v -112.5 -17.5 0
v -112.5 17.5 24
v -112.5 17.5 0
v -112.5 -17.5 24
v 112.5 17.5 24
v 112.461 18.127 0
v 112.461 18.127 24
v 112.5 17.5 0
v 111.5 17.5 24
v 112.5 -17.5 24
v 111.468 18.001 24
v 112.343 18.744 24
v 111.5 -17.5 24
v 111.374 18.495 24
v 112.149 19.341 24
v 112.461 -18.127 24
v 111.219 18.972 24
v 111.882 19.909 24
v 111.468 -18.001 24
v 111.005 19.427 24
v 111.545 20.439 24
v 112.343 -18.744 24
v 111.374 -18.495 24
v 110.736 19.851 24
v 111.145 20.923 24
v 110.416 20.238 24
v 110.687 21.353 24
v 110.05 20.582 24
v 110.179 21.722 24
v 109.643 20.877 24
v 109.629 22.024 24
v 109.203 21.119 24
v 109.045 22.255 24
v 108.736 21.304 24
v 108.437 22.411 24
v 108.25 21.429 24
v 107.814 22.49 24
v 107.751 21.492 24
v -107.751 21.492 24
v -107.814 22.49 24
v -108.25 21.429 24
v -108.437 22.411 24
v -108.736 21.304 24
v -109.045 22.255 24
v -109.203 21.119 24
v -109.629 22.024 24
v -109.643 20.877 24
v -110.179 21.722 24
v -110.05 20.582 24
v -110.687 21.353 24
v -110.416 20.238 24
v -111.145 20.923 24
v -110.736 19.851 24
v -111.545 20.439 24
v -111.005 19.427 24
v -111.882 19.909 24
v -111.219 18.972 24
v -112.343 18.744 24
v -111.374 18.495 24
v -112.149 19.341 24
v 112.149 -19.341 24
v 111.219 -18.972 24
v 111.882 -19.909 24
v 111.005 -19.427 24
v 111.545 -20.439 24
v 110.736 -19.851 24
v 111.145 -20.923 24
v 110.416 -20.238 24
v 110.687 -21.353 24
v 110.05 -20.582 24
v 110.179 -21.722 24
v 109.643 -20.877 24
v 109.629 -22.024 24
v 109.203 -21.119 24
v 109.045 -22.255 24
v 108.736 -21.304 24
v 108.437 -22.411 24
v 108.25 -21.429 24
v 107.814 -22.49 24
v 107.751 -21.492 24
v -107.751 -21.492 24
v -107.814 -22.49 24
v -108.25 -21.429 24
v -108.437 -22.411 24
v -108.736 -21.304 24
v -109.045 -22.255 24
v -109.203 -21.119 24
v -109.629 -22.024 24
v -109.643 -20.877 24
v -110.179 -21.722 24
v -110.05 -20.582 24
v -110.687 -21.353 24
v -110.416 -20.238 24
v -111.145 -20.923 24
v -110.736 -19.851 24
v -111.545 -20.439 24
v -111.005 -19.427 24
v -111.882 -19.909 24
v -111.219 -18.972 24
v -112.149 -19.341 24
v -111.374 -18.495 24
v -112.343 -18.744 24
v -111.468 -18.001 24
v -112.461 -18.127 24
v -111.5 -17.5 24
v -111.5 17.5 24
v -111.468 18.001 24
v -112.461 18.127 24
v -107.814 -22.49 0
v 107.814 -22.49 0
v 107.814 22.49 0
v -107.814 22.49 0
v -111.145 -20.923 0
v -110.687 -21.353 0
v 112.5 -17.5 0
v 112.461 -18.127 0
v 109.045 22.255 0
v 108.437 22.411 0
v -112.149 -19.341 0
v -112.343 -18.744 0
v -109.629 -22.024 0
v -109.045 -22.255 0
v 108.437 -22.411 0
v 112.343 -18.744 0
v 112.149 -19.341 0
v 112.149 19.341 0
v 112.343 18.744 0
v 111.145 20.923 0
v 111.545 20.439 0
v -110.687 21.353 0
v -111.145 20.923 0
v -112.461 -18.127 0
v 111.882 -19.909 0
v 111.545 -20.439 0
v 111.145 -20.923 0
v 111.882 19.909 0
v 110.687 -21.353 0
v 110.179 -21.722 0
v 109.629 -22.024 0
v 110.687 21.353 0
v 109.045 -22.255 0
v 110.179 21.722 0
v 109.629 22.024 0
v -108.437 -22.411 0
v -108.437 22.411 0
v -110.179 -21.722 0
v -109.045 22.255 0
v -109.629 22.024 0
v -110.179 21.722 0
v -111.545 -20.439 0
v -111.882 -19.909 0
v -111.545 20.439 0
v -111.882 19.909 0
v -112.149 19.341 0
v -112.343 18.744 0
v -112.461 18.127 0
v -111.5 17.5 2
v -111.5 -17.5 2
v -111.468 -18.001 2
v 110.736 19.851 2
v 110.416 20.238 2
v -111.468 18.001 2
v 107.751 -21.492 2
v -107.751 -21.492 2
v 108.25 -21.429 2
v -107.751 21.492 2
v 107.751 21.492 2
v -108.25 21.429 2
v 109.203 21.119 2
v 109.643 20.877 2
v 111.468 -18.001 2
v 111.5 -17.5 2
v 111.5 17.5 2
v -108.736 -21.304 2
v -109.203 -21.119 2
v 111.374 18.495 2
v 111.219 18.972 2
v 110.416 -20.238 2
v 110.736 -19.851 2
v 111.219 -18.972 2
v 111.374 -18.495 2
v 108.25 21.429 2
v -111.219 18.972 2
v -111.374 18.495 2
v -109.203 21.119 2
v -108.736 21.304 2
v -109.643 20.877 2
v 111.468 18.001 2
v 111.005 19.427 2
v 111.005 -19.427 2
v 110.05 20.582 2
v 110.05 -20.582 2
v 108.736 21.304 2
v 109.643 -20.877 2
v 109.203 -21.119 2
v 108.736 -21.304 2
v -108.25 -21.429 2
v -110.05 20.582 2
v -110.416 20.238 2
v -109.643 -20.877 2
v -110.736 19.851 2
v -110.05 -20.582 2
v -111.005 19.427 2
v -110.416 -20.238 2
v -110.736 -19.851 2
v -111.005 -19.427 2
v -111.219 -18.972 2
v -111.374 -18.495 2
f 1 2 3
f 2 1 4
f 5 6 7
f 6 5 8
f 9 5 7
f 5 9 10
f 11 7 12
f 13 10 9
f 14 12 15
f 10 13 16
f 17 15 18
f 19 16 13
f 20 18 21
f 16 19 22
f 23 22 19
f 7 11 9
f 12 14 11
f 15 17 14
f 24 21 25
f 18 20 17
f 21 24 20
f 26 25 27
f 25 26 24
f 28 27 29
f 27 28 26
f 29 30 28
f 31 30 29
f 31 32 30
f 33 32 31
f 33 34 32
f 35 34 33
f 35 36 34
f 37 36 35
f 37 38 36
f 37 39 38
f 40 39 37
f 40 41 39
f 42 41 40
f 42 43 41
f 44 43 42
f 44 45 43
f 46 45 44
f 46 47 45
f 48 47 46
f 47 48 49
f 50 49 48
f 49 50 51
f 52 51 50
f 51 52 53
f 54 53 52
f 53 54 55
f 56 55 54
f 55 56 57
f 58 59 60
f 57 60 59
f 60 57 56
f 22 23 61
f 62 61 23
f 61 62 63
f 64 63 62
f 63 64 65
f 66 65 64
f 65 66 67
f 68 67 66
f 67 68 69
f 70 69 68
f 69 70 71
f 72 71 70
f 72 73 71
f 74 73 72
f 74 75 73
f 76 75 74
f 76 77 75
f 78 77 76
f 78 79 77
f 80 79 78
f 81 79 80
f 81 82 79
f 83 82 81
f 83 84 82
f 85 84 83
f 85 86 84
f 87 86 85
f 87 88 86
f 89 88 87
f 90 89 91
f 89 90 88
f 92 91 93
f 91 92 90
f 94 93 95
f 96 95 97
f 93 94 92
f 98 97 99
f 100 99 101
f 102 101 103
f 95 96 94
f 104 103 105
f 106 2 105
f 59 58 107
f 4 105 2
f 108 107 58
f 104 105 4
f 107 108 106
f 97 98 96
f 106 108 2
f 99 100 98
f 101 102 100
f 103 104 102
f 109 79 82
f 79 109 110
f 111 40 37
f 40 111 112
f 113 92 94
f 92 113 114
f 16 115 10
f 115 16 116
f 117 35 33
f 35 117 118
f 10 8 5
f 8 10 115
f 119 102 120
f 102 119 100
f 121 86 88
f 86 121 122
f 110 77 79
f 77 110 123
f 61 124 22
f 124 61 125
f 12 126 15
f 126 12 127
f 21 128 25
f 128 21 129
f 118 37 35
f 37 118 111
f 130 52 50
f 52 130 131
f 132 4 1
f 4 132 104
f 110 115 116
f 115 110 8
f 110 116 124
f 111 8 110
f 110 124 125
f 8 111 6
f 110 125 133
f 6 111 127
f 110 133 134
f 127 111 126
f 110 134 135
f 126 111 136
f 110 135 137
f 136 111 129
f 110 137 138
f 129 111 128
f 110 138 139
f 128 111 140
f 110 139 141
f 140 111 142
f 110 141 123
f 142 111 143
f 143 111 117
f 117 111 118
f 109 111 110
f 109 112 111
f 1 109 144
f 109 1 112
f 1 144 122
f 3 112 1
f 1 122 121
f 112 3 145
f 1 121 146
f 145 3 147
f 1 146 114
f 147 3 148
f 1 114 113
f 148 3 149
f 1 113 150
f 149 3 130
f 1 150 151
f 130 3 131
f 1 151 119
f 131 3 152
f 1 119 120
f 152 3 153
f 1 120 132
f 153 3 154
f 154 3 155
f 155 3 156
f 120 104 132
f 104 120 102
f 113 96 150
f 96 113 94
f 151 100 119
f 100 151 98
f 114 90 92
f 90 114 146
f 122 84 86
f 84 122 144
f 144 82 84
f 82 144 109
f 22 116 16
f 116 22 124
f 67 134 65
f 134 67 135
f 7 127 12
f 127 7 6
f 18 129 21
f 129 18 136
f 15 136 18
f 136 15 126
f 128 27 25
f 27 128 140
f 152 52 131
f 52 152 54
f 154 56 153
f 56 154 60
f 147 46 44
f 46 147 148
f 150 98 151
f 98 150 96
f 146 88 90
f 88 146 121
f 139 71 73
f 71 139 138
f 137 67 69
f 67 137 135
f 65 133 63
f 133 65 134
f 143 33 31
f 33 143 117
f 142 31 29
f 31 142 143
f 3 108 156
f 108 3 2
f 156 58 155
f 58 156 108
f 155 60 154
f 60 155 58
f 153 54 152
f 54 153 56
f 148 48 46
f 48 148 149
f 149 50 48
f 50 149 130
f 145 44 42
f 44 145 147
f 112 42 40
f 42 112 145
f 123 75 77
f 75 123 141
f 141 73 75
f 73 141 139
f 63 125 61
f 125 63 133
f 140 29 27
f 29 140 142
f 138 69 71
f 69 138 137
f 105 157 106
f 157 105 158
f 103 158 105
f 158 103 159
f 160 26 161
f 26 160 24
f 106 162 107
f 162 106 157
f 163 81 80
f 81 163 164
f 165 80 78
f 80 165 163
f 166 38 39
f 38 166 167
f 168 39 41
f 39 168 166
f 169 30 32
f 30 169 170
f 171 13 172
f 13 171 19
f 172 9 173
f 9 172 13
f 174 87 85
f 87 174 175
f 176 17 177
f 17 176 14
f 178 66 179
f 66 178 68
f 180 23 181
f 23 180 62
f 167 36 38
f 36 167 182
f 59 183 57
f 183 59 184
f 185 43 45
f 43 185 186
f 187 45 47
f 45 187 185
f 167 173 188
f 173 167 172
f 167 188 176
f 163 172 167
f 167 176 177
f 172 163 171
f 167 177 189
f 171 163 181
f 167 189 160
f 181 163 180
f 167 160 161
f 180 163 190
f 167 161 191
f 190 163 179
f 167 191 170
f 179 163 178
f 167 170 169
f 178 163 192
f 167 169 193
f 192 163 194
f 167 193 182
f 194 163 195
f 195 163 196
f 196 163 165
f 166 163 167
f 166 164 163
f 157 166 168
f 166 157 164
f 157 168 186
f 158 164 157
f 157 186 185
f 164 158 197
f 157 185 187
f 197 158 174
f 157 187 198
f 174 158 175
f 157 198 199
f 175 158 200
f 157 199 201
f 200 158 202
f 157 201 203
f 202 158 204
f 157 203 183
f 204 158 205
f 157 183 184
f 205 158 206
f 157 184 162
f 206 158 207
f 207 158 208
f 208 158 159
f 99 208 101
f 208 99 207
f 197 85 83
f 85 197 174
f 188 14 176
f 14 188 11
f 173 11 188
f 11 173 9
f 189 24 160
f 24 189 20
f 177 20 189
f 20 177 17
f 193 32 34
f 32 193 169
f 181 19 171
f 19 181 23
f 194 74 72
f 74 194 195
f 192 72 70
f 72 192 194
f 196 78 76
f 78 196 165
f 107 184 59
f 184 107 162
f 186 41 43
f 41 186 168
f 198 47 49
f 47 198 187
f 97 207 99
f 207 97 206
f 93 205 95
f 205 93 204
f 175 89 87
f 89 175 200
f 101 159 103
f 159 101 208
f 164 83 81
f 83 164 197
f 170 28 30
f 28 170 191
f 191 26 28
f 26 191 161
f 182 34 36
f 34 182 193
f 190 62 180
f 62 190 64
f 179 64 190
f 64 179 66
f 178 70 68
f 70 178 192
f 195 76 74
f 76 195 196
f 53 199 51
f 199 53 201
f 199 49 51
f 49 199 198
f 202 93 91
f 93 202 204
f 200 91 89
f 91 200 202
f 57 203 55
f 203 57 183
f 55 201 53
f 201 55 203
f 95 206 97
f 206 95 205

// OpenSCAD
$fn = 50;


difference() {
	union() {
		hull() {
			translate(v = [-107.5000000000, 17.5000000000, 0]) {
				cylinder(h = 24, r = 5);
			}
			translate(v = [107.5000000000, 17.5000000000, 0]) {
				cylinder(h = 24, r = 5);
			}
			translate(v = [-107.5000000000, -17.5000000000, 0]) {
				cylinder(h = 24, r = 5);
			}
			translate(v = [107.5000000000, -17.5000000000, 0]) {
				cylinder(h = 24, r = 5);
			}
		}
	}
	union() {
		translate(v = [0, 0, 2]) {
			hull() {
				translate(v = [-107.5000000000, 17.5000000000, 0]) {
					cylinder(h = 22, r = 4);
				}
				translate(v = [107.5000000000, 17.5000000000, 0]) {
					cylinder(h = 22, r = 4);
				}
				translate(v = [-107.5000000000, -17.5000000000, 0]) {
					cylinder(h = 22, r = 4);
				}
				translate(v = [107.5000000000, -17.5000000000, 0]) {
					cylinder(h = 22, r = 4);
				}
			}
		}
	}
}
